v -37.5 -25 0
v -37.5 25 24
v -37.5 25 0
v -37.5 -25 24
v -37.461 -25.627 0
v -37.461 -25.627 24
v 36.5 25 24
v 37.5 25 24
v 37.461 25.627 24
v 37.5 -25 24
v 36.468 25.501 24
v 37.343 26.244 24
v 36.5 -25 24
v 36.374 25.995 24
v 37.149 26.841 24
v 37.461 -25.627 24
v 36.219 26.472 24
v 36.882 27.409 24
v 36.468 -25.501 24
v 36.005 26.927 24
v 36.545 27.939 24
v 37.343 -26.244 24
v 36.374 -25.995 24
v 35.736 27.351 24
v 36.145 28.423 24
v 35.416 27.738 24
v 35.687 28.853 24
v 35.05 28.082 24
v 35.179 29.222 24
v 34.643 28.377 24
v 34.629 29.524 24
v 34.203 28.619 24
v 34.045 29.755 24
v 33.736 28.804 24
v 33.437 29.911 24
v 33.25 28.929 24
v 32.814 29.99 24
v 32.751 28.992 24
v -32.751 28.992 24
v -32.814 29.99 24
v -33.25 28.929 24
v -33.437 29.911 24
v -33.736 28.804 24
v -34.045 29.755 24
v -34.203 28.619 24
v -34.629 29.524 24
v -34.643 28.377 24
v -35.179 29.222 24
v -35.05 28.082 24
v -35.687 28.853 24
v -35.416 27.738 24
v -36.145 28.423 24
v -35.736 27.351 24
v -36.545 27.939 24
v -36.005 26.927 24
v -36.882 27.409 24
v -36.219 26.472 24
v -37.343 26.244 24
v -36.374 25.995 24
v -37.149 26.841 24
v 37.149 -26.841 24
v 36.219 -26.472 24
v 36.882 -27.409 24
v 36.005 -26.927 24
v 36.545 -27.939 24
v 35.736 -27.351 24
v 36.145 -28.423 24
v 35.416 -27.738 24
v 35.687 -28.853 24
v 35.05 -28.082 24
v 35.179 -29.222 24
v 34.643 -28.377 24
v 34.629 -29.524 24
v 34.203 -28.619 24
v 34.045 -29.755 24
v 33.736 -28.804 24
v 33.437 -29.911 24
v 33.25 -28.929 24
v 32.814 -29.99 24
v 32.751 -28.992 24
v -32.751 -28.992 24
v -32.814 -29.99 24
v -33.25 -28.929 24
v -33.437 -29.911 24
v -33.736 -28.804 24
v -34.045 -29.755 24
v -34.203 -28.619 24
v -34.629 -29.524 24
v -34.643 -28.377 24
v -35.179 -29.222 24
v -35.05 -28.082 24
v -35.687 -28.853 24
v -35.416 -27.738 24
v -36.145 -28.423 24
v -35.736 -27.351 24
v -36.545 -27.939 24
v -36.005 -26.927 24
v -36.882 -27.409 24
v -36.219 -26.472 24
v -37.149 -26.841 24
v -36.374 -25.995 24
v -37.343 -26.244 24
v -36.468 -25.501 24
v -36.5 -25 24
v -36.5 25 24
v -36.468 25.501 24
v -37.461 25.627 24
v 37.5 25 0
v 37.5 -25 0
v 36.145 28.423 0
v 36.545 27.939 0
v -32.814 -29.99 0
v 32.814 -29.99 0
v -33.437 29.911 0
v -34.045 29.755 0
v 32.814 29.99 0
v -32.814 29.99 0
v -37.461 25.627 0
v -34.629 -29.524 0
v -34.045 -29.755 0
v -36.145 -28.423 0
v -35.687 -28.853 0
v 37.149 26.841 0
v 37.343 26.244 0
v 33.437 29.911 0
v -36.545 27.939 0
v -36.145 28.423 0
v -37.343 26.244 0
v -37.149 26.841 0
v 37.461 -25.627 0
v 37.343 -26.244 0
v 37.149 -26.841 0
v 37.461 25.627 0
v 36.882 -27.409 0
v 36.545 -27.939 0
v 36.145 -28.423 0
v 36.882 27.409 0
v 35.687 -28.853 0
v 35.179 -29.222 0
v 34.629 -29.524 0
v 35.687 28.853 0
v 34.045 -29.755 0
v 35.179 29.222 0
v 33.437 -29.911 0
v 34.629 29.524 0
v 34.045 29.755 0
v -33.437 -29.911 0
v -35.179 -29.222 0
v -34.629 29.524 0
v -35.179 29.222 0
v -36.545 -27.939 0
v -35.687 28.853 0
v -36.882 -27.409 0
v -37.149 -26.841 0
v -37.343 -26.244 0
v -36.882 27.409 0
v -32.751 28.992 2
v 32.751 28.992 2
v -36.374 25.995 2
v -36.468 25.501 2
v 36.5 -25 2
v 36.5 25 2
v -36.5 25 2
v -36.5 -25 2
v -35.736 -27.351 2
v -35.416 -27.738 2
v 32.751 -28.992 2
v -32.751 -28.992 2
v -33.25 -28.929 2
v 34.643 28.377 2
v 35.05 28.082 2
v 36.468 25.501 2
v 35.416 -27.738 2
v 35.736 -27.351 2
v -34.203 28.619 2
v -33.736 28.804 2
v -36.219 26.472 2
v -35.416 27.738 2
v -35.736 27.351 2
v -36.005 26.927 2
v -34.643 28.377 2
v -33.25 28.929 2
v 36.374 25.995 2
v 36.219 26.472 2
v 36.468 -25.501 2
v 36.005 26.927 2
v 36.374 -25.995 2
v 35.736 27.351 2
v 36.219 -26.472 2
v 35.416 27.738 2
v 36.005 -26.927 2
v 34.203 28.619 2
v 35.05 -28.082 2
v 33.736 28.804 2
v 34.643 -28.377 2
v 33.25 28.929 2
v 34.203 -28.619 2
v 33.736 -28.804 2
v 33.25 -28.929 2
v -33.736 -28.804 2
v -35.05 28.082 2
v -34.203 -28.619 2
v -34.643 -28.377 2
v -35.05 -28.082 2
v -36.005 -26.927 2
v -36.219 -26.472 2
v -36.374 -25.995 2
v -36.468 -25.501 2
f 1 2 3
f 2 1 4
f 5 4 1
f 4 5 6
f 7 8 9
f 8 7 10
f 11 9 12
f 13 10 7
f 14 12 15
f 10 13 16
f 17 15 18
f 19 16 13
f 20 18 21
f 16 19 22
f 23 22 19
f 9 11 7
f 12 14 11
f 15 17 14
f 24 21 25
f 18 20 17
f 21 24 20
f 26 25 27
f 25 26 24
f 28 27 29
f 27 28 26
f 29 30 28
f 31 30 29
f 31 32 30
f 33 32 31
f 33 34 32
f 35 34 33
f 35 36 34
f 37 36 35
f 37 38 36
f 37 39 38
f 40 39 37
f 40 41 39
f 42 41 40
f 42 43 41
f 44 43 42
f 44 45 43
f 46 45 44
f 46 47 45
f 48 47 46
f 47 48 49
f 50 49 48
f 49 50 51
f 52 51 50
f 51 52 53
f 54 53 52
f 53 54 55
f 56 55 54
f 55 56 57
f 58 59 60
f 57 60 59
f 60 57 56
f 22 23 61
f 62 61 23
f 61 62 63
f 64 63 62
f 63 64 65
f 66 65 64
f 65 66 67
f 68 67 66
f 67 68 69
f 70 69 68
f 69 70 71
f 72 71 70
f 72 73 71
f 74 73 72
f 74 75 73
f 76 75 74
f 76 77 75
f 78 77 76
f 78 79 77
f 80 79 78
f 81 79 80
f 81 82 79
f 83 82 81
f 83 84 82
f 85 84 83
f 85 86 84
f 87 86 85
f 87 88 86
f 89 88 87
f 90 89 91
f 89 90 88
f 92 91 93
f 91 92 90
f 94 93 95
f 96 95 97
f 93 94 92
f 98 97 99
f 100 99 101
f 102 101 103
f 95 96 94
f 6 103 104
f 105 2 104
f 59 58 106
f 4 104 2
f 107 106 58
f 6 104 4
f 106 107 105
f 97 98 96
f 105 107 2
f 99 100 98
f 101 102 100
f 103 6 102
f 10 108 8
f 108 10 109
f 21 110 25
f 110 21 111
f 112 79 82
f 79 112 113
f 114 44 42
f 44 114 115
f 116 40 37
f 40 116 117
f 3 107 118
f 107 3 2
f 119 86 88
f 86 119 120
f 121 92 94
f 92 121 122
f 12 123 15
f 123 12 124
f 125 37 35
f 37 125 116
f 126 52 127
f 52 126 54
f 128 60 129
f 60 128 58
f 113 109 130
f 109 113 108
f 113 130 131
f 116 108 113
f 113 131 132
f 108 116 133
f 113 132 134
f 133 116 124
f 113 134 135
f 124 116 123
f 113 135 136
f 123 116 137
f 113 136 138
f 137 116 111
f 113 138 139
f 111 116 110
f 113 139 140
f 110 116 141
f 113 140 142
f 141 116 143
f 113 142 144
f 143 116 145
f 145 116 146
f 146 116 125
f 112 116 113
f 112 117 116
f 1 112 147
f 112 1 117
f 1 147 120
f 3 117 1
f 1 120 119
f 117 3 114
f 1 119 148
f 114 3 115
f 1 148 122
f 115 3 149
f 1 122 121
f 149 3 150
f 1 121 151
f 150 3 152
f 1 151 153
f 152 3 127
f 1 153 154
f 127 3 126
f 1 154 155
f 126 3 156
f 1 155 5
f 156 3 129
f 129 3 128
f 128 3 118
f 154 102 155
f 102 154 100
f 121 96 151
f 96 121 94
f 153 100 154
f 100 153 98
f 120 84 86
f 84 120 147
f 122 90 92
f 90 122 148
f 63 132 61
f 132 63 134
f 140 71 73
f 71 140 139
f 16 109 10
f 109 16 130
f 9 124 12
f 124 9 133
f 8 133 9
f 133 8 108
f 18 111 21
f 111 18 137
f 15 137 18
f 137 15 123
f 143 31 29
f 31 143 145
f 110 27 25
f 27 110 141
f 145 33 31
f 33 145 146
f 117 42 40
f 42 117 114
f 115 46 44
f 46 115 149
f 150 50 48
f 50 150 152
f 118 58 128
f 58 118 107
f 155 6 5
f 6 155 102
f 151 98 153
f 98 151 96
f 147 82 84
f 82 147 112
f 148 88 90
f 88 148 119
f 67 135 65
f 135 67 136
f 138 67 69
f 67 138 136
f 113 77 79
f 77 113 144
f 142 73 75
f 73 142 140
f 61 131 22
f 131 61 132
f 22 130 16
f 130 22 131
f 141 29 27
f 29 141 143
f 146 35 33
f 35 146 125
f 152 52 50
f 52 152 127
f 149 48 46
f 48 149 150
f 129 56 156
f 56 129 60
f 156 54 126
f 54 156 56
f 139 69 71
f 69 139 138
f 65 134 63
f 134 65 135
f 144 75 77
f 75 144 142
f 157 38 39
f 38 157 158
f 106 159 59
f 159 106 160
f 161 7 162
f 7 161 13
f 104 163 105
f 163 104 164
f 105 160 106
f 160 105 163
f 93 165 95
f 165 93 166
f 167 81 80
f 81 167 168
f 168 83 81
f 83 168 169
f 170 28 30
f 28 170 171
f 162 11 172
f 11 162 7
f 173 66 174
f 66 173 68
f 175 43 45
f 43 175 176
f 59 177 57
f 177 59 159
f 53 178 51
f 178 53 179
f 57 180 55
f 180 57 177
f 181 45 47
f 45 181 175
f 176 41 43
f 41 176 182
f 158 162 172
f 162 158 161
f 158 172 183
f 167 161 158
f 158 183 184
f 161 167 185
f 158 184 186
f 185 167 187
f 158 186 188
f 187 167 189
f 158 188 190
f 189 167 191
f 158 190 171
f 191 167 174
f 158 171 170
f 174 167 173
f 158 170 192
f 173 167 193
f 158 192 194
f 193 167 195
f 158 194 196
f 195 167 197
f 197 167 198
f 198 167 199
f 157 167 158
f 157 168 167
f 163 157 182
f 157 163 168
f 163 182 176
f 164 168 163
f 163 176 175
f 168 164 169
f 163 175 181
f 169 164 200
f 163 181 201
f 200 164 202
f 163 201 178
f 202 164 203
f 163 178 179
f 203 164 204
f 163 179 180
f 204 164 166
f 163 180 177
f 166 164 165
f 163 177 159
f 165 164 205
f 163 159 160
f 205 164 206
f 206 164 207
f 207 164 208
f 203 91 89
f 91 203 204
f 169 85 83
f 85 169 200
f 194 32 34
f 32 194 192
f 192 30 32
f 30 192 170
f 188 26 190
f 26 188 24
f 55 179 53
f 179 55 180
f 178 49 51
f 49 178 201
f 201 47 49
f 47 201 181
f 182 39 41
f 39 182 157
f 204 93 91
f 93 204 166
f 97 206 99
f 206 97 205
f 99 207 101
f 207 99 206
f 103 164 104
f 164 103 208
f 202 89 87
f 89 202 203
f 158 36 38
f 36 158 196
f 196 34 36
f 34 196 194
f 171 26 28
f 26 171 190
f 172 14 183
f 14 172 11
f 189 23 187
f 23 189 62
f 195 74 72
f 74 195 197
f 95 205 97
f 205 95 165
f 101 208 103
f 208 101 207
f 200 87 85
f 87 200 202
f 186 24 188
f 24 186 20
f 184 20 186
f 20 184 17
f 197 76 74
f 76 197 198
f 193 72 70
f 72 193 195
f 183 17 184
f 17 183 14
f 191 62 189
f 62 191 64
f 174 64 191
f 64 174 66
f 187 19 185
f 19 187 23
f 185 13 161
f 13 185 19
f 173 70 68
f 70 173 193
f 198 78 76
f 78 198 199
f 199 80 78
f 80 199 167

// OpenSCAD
$fn = 50;


difference() {
	union() {
		hull() {
			translate(v = [-32.5000000000, 25.0000000000, 0]) {
				cylinder(h = 24, r = 5);
			}
			translate(v = [32.5000000000, 25.0000000000, 0]) {
				cylinder(h = 24, r = 5);
			}
			translate(v = [-32.5000000000, -25.0000000000, 0]) {
				cylinder(h = 24, r = 5);
			}
			translate(v = [32.5000000000, -25.0000000000, 0]) {
				cylinder(h = 24, r = 5);
			}
		}
	}
	union() {
		translate(v = [0, 0, 2]) {
			#hull() {
				translate(v = [-32.5000000000, 25.0000000000, 0]) {
					cylinder(h = 22, r = 4);
				}
				translate(v = [32.5000000000, 25.0000000000, 0]) {
					cylinder(h = 22, r = 4);
				}
				translate(v = [-32.5000000000, -25.0000000000, 0]) {
					cylinder(h = 22, r = 4);
				}
				translate(v = [32.5000000000, -25.0000000000, 0]) {
					cylinder(h = 22, r = 4);
				}
			}
		}
	}
}
